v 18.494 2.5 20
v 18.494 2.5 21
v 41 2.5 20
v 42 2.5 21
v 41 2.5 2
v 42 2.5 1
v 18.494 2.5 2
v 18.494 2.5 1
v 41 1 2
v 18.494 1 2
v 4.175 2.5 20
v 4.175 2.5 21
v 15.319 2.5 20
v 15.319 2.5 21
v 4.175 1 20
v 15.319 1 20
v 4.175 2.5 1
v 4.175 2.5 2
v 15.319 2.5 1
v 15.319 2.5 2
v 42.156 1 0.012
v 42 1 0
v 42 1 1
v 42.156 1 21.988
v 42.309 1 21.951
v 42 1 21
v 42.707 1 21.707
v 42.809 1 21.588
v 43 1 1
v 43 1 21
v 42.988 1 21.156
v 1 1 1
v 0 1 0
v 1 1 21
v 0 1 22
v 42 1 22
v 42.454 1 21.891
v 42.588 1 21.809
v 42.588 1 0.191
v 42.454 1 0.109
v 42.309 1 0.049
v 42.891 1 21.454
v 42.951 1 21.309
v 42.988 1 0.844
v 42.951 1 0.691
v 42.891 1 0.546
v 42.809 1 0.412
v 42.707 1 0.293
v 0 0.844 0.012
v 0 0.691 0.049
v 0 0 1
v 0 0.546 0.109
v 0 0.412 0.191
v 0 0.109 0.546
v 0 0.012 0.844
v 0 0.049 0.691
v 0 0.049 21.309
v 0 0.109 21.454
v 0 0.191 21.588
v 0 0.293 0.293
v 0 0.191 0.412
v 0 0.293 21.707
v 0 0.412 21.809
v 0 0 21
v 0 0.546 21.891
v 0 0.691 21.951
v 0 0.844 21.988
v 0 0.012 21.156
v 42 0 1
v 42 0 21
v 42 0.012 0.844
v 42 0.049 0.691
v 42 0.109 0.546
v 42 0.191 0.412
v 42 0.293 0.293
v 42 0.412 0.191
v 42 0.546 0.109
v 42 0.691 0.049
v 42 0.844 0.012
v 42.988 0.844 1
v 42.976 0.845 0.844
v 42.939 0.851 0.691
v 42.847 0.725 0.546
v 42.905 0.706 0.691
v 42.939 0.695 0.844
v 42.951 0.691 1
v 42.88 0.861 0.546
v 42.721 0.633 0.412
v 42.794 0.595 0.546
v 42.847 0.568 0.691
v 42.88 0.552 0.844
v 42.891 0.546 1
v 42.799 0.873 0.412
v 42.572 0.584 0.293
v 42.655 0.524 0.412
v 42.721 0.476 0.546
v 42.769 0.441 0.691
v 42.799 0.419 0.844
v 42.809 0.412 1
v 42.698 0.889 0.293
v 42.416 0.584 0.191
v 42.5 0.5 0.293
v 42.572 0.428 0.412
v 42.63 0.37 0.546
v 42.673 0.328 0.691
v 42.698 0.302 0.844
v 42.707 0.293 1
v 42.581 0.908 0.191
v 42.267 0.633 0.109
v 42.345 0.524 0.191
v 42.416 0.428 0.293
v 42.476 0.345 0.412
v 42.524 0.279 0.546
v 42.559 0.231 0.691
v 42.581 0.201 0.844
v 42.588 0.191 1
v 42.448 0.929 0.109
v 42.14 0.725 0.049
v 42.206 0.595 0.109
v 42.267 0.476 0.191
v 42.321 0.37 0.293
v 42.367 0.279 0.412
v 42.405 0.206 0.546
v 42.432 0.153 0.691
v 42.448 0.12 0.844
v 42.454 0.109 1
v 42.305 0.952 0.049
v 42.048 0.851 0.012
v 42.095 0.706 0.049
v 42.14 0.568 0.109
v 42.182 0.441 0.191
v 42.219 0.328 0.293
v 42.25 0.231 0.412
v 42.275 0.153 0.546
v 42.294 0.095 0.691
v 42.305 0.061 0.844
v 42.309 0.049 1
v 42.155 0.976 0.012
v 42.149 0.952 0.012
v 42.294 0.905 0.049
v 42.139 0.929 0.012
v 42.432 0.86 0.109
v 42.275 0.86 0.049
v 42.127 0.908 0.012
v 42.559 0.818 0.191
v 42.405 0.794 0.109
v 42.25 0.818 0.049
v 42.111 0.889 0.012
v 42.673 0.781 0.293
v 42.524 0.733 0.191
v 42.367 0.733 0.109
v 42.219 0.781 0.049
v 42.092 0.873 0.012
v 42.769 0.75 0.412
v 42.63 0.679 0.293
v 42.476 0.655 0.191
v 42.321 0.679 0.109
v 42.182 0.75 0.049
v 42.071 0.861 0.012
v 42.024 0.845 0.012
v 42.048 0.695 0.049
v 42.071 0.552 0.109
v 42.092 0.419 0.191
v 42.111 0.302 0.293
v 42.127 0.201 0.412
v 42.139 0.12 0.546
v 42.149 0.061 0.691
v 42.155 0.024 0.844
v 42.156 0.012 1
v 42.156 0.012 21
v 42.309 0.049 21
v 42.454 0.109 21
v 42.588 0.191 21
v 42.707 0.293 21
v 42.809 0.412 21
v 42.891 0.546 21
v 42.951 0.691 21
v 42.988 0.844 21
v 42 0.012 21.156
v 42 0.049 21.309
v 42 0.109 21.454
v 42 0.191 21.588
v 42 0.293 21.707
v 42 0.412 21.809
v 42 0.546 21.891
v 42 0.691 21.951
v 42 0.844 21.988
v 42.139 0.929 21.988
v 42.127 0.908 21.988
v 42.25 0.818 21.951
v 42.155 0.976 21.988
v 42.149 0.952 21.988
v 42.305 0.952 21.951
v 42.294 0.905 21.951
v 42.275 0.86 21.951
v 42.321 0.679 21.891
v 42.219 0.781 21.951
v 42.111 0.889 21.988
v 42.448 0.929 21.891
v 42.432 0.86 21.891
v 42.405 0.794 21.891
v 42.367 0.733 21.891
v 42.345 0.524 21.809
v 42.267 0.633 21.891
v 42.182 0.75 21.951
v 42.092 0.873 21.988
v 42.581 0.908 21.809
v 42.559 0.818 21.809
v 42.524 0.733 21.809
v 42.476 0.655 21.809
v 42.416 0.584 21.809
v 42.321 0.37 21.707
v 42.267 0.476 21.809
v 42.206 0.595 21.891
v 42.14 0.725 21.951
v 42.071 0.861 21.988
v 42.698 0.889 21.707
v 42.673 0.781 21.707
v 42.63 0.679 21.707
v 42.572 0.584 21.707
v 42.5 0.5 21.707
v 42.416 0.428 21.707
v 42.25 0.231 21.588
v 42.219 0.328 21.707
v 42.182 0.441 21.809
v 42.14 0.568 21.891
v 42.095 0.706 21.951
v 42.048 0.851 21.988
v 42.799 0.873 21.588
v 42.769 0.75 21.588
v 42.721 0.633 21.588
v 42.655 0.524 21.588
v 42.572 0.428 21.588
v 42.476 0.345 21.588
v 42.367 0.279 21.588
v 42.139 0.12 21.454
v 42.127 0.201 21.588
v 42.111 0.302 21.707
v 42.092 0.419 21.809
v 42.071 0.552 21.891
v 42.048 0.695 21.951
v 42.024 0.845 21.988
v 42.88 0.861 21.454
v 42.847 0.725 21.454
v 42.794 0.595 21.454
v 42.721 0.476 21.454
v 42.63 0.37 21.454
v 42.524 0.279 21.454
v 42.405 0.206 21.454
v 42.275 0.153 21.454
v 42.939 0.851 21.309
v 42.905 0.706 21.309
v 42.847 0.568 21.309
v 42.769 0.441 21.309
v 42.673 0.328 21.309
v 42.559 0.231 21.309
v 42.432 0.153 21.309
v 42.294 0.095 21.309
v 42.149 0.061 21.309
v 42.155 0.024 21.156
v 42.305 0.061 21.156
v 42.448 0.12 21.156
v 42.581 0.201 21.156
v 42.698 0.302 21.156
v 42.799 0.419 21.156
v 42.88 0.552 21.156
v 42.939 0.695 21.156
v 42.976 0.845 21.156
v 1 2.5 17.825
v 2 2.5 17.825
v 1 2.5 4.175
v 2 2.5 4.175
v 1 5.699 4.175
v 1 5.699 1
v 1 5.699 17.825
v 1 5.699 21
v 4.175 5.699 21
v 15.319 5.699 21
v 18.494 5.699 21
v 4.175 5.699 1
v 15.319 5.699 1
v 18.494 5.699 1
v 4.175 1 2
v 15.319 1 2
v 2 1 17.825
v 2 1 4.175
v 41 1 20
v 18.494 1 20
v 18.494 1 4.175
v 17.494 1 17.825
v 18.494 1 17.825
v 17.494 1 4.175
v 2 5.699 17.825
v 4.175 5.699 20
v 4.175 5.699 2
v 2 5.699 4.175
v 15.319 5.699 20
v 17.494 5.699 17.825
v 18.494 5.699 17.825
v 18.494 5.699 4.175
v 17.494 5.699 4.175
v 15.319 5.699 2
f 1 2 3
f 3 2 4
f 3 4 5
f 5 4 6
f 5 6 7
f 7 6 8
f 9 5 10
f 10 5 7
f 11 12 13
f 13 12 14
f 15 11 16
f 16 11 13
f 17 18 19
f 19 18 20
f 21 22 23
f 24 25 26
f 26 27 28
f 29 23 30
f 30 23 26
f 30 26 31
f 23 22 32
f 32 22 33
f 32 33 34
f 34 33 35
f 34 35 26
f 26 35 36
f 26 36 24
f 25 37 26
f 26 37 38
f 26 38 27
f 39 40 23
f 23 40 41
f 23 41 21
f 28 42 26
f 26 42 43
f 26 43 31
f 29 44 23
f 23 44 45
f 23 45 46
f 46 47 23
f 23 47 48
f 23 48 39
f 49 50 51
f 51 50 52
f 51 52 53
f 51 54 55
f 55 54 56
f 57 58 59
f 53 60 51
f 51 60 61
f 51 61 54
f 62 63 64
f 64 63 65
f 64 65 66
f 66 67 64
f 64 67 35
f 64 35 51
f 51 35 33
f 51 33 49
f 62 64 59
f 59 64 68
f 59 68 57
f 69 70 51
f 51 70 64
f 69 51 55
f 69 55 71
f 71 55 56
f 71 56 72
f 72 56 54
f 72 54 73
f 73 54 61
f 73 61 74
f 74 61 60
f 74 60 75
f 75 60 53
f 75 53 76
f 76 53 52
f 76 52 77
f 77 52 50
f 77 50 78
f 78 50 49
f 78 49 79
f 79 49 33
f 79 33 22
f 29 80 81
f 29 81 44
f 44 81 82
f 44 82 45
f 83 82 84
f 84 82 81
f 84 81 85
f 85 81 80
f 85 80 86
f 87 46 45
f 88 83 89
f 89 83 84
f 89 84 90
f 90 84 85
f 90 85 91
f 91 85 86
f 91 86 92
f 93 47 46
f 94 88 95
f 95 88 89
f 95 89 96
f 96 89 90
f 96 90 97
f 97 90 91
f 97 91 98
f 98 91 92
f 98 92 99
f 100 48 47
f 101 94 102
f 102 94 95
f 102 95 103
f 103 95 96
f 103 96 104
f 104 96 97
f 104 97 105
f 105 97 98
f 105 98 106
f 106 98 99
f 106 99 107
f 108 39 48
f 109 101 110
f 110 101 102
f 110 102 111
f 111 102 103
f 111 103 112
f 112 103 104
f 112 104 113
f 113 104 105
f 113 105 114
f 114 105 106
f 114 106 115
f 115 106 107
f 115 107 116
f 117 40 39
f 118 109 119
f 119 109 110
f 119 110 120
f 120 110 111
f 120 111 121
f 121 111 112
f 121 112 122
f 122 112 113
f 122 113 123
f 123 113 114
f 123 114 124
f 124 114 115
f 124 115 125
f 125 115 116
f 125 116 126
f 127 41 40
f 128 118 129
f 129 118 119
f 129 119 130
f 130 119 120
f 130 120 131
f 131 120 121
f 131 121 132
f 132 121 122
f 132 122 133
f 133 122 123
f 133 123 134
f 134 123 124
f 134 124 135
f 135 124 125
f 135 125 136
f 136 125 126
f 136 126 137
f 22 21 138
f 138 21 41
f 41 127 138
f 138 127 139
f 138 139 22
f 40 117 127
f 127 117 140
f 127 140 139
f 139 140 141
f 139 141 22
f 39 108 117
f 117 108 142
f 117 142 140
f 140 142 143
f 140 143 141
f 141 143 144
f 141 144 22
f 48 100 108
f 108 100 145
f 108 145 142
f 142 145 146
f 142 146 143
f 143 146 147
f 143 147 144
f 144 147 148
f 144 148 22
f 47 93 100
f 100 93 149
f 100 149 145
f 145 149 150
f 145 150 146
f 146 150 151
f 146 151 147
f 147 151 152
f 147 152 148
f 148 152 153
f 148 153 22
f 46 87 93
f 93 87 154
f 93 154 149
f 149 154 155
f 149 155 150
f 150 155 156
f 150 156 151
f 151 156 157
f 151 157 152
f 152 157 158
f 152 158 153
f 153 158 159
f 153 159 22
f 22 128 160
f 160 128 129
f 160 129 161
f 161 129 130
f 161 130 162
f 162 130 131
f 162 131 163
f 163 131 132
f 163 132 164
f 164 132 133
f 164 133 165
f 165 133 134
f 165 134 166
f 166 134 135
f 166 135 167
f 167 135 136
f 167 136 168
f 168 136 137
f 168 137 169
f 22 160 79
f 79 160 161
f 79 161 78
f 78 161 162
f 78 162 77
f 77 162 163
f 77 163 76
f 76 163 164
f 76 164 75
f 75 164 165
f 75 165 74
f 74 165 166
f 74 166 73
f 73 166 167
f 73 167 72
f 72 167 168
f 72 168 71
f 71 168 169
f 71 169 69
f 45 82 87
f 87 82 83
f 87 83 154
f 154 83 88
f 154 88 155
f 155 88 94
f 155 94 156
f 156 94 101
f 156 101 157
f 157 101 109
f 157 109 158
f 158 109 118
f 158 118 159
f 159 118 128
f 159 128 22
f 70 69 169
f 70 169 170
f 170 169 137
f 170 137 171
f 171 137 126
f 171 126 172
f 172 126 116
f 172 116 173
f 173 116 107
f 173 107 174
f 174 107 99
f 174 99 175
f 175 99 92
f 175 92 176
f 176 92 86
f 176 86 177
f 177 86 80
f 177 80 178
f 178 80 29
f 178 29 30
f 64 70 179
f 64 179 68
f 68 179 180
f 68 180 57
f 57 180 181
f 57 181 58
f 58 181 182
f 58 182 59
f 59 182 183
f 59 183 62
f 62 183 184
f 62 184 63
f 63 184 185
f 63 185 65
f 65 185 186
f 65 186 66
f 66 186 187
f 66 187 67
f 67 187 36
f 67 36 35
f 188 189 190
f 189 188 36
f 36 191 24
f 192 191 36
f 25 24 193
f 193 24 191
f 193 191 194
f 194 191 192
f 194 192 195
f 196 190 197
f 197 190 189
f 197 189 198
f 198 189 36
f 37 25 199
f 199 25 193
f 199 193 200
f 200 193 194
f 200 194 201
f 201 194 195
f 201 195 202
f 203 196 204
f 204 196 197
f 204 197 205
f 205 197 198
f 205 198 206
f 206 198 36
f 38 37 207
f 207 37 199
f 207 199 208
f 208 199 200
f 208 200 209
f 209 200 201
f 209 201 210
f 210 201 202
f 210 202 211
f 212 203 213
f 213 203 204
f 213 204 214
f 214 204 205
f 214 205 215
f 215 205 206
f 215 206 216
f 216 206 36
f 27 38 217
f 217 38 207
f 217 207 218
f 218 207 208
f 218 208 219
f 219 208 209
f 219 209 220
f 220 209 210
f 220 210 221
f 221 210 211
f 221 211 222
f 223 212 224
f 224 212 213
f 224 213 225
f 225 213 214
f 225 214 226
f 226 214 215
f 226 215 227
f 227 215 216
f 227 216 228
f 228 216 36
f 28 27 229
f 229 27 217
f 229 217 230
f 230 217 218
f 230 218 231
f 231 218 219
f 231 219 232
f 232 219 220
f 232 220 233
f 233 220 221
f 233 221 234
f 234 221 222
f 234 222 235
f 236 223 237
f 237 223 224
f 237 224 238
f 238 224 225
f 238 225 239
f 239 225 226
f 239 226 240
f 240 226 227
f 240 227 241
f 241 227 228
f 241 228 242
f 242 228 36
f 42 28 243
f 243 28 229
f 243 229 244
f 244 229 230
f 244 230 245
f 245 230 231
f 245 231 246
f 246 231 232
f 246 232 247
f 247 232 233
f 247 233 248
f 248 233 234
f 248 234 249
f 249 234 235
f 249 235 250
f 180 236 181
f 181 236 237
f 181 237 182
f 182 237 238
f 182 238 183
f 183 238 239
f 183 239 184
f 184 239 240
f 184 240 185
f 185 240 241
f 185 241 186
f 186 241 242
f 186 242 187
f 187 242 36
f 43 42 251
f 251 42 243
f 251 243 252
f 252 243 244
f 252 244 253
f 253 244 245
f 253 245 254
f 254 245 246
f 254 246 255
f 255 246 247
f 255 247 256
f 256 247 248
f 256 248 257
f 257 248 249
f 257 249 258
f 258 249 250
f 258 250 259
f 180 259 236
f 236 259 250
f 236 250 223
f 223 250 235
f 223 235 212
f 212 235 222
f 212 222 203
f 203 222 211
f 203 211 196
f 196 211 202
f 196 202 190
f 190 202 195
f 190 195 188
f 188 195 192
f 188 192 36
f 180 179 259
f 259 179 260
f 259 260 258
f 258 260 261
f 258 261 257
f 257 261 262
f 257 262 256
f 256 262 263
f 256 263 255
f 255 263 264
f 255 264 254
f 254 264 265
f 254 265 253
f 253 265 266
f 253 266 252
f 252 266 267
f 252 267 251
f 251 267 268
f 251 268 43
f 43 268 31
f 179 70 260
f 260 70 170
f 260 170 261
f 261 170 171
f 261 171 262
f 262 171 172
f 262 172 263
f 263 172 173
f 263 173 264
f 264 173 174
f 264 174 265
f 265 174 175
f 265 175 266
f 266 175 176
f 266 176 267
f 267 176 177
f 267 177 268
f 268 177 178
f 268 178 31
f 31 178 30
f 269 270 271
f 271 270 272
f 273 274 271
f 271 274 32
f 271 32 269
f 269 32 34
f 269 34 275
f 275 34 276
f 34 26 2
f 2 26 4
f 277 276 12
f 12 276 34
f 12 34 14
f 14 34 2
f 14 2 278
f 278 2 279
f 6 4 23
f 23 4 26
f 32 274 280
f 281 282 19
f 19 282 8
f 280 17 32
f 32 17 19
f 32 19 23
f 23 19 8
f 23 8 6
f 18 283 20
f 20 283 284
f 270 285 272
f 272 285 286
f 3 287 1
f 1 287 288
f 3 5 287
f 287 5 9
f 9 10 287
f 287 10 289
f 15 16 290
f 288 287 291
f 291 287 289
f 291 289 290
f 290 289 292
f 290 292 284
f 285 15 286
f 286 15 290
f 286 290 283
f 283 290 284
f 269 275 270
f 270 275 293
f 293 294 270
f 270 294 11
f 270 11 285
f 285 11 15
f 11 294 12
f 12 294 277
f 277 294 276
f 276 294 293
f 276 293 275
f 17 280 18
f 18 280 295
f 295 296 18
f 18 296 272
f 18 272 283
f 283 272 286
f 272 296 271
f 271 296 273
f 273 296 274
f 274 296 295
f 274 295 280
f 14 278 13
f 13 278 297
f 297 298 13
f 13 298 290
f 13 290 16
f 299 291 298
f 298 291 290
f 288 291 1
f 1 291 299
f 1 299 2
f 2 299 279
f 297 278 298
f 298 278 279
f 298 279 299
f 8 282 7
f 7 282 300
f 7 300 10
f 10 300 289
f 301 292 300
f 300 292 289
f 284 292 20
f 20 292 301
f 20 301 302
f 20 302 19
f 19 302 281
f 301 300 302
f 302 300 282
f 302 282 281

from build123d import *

# Parameters (mm, degrees)
SKETCH1_W                = 43
SKETCH1_H                = 1
BOSS_EXTRUDE1_DEPTH      = 22
FILLET1_R                = 1
SKETCH2_W                = 41
SKETCH2_H                = 20
SKETCH2_W_2              = 39
SKETCH2_H_2              = 18
BOSS_EXTRUDE2_DEPTH      = 1.5
BOSS_EXTRUDE3_DEPTH      = 3.199
BOSS_EXTRUDE3_DEPTH_BACK = 1.5


with BuildPart() as part:
    # Sketch1 → Boss-Extrude1 (new body)
    with BuildSketch(Plane.XY):
        with Locations((21.5, 0.5)):
            Rectangle(SKETCH1_W, SKETCH1_H)
    extrude(amount=BOSS_EXTRUDE1_DEPTH)

    # Fillet1
    # the kernel refuses this fillet: 1 mm, written as the material it takes off along each edge
    with BuildSketch(Plane(origin=(42, 1, 21), x_dir=(1, 0, 0), z_dir=(0, -1, 0))) as fillet1_piece_1_section:
        Polygon((0, 0), (FILLET1_R * 1.02, 0), (FILLET1_R * 1.02, FILLET1_R * 1.02), (0, FILLET1_R * 1.02), align=None)
    fillet1_piece_1 = extrude(amount=FILLET1_R * 1.02, mode=Mode.PRIVATE)
    fillet1_piece_1 = fillet1_piece_1 - Plane(origin=(42, 1, 21), x_dir=(-0.7071067811865475, 0, -0.7071067811865475), z_dir=(0, -1, 0)) * Sphere(FILLET1_R, mode=Mode.PRIVATE)
    add(fillet1_piece_1, mode=Mode.SUBTRACT)
    with BuildSketch(Plane(origin=(42, 1, 1), x_dir=(1, 0, 0), z_dir=(0, -1, 0))) as fillet1_piece_2_section:
        Polygon((0, 0), (FILLET1_R * 1.02, 0), (FILLET1_R * 1.02, -FILLET1_R * 1.02), (0, -FILLET1_R * 1.02), align=None)
    fillet1_piece_2 = extrude(amount=FILLET1_R * 1.02, mode=Mode.PRIVATE)
    fillet1_piece_2 = fillet1_piece_2 - Plane(origin=(42, 1, 1), x_dir=(-0.7071067811865475, 0, 0.7071067811865475), z_dir=(0, -1, 0)) * Sphere(FILLET1_R, mode=Mode.PRIVATE)
    add(fillet1_piece_2, mode=Mode.SUBTRACT)
    with BuildSketch(Plane(origin=(-2.5, 0, 0), x_dir=(0, 0, 1), z_dir=(1, 0, 0))) as fillet1_piece_3:
        with BuildLine():
            CenterArc((FILLET1_R, -FILLET1_R), FILLET1_R, 90, 90)
            Line((0, -FILLET1_R), (0, 0))
            Line((0, 0), (FILLET1_R, 0))
        make_face()
    extrude(amount=44.5, mode=Mode.SUBTRACT)
    with BuildSketch(Plane(origin=(-2.5, 0, 22), x_dir=(0, 0, -1), z_dir=(1, 0, 0))) as fillet1_piece_4:
        with BuildLine():
            CenterArc((FILLET1_R, FILLET1_R), FILLET1_R, 180, 90)
            Line((0, FILLET1_R), (0, 0))
            Line((0, 0), (FILLET1_R, 0))
        make_face()
    extrude(amount=44.5, mode=Mode.SUBTRACT)
    with BuildSketch(Plane(origin=(43, 0, 1), x_dir=(-1, 0, 0), z_dir=(0, 0, 1))) as fillet1_piece_5:
        with BuildLine():
            CenterArc((FILLET1_R, -FILLET1_R), FILLET1_R, 90, 90)
            Line((0, -FILLET1_R), (0, 0))
            Line((0, 0), (FILLET1_R, 0))
        make_face()
    extrude(amount=20, mode=Mode.SUBTRACT)

    # Sketch2 → Boss-Extrude2 (add)
    with BuildSketch(Plane(origin=(0, 1, 0), x_dir=(1, 0, 0), z_dir=(0, 1, 0))):
        with Locations((21.5, -11)):
            Rectangle(SKETCH2_W, SKETCH2_H)
        with Locations((21.5, -11)):
            Rectangle(SKETCH2_W_2, SKETCH2_H_2, mode=Mode.SUBTRACT)
    extrude(amount=BOSS_EXTRUDE2_DEPTH)

    # Sketch3 → Boss-Extrude3 (add, two sides: drawn at the far end of the back side and taken through both)
    with BuildSketch(Plane(origin=(0, 2.5, 0), x_dir=(1, 0, 0), z_dir=(0, 1, 0)).offset(-BOSS_EXTRUDE3_DEPTH_BACK)):
        Polygon((1, -21), (4.175, -21), (4.175, -20), (2, -17.825), (1, -17.825), align=None)
        Polygon((1, -1), (1, -4.175), (2, -4.175), (4.175, -2), (4.175, -1), align=None)
        Polygon((18.494, -21), (18.494, -17.825), (17.494, -17.825), (15.319, -20), (15.319, -21), align=None)
        Polygon((18.494, -1), (18.494, -4.175), (17.494, -4.175), (15.319, -2), (15.319, -1), align=None)
    extrude(amount=BOSS_EXTRUDE3_DEPTH + BOSS_EXTRUDE3_DEPTH_BACK)


solid = part.part
